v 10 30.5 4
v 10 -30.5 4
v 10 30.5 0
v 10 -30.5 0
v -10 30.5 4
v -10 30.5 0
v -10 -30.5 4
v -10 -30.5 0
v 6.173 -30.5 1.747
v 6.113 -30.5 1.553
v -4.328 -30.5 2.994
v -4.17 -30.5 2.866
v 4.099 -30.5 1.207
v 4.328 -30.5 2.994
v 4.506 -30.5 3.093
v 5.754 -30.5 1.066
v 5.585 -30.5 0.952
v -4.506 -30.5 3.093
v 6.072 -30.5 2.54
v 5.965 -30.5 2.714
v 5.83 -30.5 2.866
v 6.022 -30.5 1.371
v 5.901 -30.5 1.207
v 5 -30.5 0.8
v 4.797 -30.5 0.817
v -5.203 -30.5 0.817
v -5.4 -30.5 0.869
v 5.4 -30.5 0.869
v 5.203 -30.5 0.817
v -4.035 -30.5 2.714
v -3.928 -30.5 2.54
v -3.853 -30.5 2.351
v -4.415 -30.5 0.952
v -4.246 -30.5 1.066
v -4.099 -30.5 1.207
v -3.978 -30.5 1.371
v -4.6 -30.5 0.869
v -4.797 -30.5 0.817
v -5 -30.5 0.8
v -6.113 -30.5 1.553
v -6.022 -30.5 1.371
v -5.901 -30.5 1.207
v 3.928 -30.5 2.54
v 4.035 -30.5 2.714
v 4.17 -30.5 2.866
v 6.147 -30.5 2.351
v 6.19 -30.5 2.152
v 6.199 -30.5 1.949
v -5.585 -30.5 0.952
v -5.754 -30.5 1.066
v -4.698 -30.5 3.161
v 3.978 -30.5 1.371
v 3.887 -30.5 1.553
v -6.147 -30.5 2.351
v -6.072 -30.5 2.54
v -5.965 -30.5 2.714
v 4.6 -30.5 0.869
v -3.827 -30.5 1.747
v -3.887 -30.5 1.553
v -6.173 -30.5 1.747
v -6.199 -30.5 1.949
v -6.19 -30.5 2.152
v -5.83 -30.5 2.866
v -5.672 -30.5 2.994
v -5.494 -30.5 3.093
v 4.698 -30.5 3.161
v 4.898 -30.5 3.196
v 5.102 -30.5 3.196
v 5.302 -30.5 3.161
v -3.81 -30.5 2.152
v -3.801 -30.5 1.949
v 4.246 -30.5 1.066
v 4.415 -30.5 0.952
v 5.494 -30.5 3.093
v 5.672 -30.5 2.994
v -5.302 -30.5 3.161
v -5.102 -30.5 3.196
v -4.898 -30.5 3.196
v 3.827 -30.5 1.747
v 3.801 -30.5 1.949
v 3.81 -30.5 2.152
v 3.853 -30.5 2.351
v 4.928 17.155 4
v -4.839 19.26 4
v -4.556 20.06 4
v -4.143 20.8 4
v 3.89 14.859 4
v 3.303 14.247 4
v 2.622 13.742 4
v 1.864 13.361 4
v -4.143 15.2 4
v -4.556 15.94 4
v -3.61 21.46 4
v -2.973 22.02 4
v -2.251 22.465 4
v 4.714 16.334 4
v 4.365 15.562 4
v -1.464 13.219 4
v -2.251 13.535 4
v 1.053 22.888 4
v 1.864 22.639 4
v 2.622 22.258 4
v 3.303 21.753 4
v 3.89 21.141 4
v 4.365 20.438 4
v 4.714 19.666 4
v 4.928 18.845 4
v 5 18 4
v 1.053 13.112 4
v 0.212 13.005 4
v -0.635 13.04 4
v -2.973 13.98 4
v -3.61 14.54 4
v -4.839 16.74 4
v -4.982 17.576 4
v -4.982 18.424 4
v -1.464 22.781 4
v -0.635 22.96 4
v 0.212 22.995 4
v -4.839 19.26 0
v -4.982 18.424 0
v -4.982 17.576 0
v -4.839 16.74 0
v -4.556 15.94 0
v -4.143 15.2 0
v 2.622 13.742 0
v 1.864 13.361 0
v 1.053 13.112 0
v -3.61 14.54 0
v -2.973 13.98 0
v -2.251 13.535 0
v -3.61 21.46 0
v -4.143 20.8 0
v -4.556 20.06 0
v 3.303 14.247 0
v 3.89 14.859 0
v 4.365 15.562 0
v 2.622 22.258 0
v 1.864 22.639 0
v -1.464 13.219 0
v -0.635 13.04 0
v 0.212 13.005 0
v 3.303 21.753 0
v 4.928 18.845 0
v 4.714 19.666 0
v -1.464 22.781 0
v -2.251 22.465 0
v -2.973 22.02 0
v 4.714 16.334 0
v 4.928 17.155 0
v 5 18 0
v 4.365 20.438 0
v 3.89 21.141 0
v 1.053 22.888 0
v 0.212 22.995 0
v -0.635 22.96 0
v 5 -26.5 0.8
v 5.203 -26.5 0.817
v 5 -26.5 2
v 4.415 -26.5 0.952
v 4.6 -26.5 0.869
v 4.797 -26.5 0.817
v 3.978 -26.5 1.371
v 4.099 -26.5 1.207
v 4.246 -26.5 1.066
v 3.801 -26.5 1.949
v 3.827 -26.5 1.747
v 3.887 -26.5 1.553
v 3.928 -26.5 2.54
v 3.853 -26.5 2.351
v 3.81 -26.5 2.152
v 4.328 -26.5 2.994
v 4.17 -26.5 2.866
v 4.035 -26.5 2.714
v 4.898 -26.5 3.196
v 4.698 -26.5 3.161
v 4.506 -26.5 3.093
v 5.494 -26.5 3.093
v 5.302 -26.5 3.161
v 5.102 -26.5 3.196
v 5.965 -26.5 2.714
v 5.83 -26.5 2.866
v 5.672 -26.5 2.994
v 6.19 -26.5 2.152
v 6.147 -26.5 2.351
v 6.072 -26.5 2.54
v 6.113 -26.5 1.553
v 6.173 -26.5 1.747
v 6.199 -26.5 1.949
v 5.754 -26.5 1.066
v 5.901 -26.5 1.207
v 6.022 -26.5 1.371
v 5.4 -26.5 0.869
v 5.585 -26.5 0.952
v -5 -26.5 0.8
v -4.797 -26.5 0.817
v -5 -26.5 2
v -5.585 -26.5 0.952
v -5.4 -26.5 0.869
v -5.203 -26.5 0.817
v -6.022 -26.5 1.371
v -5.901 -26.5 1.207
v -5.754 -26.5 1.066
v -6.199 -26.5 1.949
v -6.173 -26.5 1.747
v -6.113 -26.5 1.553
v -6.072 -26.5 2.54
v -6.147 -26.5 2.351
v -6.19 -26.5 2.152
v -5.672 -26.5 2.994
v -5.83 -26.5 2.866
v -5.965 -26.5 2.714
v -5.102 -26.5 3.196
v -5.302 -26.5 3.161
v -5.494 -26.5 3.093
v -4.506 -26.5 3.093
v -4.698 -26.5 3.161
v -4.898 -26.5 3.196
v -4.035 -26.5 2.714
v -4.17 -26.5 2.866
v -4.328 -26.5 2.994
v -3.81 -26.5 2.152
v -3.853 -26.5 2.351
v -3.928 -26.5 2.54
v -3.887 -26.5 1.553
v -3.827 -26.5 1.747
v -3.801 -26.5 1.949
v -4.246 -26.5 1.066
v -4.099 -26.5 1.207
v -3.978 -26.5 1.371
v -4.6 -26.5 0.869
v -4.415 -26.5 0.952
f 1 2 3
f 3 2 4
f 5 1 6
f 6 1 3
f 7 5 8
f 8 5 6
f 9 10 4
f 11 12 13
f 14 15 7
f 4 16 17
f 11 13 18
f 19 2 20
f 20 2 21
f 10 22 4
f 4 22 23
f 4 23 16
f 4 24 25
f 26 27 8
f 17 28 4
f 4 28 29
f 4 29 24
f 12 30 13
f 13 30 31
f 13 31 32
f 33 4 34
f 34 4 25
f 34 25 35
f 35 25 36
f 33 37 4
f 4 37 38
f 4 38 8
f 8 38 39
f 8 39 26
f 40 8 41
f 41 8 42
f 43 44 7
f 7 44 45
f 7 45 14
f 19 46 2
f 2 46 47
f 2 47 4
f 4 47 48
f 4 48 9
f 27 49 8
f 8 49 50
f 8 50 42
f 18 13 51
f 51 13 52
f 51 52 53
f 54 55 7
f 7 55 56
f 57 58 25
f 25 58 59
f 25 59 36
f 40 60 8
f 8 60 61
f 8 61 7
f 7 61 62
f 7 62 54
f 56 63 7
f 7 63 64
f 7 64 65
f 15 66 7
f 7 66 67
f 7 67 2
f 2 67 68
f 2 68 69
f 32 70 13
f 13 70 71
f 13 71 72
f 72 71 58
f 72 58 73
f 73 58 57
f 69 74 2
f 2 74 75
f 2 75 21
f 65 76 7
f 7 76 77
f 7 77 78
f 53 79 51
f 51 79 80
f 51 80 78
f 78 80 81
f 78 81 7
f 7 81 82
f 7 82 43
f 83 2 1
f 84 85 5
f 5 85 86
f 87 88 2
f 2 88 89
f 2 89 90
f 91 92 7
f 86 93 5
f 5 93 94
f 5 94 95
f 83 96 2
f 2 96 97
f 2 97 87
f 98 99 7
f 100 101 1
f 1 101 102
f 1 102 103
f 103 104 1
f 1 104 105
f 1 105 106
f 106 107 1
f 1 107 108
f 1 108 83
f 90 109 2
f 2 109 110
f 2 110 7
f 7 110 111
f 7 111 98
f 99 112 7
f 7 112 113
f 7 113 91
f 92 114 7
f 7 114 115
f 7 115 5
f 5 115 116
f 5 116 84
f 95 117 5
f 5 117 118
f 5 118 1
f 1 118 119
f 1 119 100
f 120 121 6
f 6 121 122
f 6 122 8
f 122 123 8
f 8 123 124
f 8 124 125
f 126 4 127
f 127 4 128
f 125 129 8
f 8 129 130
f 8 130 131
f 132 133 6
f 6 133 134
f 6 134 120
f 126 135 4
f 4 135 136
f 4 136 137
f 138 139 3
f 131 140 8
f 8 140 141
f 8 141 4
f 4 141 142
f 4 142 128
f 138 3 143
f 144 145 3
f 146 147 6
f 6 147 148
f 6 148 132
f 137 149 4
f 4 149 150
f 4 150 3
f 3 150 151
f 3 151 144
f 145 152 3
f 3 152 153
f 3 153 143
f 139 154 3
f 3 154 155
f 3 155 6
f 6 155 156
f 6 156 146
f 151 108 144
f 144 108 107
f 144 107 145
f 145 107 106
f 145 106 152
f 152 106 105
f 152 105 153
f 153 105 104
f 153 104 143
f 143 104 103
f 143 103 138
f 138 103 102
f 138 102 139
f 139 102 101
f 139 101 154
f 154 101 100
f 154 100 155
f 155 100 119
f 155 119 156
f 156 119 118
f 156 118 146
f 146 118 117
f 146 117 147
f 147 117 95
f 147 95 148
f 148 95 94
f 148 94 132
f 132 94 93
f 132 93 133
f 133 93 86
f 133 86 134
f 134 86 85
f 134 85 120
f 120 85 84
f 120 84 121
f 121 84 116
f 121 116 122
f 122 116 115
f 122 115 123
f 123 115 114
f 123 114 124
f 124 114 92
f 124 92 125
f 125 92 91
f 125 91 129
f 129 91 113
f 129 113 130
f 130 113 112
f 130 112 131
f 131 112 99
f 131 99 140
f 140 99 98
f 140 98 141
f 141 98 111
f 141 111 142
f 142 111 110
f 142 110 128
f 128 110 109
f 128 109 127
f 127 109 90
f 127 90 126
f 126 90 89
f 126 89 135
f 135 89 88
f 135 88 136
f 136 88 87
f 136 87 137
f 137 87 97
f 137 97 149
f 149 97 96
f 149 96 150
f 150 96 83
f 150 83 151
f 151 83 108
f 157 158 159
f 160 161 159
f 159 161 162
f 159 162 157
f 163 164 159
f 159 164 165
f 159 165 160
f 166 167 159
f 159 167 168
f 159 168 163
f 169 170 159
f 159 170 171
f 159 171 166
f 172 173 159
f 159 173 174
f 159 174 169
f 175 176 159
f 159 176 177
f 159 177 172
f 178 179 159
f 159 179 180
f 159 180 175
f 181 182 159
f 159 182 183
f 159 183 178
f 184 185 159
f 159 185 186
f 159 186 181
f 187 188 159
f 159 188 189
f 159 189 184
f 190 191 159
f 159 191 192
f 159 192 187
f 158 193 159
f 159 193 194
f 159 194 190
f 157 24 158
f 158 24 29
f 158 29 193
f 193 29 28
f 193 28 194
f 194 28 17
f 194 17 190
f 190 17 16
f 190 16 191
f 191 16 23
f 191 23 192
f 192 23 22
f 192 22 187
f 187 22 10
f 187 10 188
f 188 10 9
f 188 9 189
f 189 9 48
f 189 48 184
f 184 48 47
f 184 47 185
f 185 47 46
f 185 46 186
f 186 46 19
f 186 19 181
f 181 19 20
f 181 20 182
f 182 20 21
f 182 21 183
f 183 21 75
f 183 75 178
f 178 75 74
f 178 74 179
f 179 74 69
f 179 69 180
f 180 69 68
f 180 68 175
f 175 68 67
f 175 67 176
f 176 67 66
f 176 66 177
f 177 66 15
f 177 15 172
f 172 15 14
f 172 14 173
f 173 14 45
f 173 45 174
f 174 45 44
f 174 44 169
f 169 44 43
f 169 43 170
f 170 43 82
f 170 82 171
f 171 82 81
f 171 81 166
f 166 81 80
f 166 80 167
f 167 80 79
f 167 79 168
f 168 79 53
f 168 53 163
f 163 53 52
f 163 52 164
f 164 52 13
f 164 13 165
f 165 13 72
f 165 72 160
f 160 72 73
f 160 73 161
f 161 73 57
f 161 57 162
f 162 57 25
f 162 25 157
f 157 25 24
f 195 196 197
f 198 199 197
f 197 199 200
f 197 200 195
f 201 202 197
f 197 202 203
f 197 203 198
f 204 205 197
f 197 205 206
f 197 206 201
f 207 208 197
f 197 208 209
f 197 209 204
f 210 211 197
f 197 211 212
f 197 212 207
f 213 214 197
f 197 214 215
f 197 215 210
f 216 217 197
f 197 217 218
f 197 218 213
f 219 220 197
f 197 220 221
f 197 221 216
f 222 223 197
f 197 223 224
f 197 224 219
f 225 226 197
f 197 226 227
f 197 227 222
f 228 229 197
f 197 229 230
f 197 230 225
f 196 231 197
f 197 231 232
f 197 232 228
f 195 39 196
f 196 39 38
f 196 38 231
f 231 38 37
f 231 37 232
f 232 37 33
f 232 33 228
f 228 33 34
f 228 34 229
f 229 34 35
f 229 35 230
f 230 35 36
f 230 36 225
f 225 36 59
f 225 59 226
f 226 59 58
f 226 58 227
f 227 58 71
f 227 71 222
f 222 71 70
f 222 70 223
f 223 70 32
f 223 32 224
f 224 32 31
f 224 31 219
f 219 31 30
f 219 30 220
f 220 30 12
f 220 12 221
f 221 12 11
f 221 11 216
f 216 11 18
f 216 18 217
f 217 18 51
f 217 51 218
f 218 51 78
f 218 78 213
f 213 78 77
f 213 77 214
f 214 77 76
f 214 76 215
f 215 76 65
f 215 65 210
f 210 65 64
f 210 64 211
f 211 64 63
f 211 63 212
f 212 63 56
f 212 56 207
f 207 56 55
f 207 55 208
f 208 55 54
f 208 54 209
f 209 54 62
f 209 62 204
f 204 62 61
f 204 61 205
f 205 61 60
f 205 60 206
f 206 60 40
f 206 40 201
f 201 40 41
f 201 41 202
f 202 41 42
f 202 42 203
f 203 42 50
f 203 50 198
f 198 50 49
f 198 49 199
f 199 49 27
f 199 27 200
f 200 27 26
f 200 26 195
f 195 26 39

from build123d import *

# Parameters (mm, degrees)
SCHIZZO1_W                   = 20
SCHIZZO1_H                   = 61
ESTRUSIONE_ESTRUSIONE1_DEPTH = 4
SCHIZZO2_R                   = 5
TAGLIO_ESTRUSIONE1_DEPTH     = 4
FORO_PER_VITE_M2_2_D         = 2.4
FORO_PER_VITE_M2_2_DEPTH     = 4


with BuildPart() as part:
    # Schizzo1 → Estrusione-Estrusione1 (new body)
    with BuildSketch(Plane.XY):
        Rectangle(SCHIZZO1_W, SCHIZZO1_H)
    extrude(amount=ESTRUSIONE_ESTRUSIONE1_DEPTH)

    # Schizzo2 → Taglio-Estrusione1 (cut)
    with BuildSketch(Plane.XY.offset(4)):
        with Locations((0, 18)):
            Circle(SCHIZZO2_R)
    extrude(amount=-TAGLIO_ESTRUSIONE1_DEPTH, mode=Mode.SUBTRACT)

    # Foro per Vite M2-2
    with Locations(Plane(origin=(0, -30.5, 0), x_dir=(-1, 0, 0), z_dir=(0, -1, 0))):
        with Locations((5, -2), (-5, -2)):
            Hole(FORO_PER_VITE_M2_2_D / 2, depth=FORO_PER_VITE_M2_2_DEPTH)


solid = part.part
